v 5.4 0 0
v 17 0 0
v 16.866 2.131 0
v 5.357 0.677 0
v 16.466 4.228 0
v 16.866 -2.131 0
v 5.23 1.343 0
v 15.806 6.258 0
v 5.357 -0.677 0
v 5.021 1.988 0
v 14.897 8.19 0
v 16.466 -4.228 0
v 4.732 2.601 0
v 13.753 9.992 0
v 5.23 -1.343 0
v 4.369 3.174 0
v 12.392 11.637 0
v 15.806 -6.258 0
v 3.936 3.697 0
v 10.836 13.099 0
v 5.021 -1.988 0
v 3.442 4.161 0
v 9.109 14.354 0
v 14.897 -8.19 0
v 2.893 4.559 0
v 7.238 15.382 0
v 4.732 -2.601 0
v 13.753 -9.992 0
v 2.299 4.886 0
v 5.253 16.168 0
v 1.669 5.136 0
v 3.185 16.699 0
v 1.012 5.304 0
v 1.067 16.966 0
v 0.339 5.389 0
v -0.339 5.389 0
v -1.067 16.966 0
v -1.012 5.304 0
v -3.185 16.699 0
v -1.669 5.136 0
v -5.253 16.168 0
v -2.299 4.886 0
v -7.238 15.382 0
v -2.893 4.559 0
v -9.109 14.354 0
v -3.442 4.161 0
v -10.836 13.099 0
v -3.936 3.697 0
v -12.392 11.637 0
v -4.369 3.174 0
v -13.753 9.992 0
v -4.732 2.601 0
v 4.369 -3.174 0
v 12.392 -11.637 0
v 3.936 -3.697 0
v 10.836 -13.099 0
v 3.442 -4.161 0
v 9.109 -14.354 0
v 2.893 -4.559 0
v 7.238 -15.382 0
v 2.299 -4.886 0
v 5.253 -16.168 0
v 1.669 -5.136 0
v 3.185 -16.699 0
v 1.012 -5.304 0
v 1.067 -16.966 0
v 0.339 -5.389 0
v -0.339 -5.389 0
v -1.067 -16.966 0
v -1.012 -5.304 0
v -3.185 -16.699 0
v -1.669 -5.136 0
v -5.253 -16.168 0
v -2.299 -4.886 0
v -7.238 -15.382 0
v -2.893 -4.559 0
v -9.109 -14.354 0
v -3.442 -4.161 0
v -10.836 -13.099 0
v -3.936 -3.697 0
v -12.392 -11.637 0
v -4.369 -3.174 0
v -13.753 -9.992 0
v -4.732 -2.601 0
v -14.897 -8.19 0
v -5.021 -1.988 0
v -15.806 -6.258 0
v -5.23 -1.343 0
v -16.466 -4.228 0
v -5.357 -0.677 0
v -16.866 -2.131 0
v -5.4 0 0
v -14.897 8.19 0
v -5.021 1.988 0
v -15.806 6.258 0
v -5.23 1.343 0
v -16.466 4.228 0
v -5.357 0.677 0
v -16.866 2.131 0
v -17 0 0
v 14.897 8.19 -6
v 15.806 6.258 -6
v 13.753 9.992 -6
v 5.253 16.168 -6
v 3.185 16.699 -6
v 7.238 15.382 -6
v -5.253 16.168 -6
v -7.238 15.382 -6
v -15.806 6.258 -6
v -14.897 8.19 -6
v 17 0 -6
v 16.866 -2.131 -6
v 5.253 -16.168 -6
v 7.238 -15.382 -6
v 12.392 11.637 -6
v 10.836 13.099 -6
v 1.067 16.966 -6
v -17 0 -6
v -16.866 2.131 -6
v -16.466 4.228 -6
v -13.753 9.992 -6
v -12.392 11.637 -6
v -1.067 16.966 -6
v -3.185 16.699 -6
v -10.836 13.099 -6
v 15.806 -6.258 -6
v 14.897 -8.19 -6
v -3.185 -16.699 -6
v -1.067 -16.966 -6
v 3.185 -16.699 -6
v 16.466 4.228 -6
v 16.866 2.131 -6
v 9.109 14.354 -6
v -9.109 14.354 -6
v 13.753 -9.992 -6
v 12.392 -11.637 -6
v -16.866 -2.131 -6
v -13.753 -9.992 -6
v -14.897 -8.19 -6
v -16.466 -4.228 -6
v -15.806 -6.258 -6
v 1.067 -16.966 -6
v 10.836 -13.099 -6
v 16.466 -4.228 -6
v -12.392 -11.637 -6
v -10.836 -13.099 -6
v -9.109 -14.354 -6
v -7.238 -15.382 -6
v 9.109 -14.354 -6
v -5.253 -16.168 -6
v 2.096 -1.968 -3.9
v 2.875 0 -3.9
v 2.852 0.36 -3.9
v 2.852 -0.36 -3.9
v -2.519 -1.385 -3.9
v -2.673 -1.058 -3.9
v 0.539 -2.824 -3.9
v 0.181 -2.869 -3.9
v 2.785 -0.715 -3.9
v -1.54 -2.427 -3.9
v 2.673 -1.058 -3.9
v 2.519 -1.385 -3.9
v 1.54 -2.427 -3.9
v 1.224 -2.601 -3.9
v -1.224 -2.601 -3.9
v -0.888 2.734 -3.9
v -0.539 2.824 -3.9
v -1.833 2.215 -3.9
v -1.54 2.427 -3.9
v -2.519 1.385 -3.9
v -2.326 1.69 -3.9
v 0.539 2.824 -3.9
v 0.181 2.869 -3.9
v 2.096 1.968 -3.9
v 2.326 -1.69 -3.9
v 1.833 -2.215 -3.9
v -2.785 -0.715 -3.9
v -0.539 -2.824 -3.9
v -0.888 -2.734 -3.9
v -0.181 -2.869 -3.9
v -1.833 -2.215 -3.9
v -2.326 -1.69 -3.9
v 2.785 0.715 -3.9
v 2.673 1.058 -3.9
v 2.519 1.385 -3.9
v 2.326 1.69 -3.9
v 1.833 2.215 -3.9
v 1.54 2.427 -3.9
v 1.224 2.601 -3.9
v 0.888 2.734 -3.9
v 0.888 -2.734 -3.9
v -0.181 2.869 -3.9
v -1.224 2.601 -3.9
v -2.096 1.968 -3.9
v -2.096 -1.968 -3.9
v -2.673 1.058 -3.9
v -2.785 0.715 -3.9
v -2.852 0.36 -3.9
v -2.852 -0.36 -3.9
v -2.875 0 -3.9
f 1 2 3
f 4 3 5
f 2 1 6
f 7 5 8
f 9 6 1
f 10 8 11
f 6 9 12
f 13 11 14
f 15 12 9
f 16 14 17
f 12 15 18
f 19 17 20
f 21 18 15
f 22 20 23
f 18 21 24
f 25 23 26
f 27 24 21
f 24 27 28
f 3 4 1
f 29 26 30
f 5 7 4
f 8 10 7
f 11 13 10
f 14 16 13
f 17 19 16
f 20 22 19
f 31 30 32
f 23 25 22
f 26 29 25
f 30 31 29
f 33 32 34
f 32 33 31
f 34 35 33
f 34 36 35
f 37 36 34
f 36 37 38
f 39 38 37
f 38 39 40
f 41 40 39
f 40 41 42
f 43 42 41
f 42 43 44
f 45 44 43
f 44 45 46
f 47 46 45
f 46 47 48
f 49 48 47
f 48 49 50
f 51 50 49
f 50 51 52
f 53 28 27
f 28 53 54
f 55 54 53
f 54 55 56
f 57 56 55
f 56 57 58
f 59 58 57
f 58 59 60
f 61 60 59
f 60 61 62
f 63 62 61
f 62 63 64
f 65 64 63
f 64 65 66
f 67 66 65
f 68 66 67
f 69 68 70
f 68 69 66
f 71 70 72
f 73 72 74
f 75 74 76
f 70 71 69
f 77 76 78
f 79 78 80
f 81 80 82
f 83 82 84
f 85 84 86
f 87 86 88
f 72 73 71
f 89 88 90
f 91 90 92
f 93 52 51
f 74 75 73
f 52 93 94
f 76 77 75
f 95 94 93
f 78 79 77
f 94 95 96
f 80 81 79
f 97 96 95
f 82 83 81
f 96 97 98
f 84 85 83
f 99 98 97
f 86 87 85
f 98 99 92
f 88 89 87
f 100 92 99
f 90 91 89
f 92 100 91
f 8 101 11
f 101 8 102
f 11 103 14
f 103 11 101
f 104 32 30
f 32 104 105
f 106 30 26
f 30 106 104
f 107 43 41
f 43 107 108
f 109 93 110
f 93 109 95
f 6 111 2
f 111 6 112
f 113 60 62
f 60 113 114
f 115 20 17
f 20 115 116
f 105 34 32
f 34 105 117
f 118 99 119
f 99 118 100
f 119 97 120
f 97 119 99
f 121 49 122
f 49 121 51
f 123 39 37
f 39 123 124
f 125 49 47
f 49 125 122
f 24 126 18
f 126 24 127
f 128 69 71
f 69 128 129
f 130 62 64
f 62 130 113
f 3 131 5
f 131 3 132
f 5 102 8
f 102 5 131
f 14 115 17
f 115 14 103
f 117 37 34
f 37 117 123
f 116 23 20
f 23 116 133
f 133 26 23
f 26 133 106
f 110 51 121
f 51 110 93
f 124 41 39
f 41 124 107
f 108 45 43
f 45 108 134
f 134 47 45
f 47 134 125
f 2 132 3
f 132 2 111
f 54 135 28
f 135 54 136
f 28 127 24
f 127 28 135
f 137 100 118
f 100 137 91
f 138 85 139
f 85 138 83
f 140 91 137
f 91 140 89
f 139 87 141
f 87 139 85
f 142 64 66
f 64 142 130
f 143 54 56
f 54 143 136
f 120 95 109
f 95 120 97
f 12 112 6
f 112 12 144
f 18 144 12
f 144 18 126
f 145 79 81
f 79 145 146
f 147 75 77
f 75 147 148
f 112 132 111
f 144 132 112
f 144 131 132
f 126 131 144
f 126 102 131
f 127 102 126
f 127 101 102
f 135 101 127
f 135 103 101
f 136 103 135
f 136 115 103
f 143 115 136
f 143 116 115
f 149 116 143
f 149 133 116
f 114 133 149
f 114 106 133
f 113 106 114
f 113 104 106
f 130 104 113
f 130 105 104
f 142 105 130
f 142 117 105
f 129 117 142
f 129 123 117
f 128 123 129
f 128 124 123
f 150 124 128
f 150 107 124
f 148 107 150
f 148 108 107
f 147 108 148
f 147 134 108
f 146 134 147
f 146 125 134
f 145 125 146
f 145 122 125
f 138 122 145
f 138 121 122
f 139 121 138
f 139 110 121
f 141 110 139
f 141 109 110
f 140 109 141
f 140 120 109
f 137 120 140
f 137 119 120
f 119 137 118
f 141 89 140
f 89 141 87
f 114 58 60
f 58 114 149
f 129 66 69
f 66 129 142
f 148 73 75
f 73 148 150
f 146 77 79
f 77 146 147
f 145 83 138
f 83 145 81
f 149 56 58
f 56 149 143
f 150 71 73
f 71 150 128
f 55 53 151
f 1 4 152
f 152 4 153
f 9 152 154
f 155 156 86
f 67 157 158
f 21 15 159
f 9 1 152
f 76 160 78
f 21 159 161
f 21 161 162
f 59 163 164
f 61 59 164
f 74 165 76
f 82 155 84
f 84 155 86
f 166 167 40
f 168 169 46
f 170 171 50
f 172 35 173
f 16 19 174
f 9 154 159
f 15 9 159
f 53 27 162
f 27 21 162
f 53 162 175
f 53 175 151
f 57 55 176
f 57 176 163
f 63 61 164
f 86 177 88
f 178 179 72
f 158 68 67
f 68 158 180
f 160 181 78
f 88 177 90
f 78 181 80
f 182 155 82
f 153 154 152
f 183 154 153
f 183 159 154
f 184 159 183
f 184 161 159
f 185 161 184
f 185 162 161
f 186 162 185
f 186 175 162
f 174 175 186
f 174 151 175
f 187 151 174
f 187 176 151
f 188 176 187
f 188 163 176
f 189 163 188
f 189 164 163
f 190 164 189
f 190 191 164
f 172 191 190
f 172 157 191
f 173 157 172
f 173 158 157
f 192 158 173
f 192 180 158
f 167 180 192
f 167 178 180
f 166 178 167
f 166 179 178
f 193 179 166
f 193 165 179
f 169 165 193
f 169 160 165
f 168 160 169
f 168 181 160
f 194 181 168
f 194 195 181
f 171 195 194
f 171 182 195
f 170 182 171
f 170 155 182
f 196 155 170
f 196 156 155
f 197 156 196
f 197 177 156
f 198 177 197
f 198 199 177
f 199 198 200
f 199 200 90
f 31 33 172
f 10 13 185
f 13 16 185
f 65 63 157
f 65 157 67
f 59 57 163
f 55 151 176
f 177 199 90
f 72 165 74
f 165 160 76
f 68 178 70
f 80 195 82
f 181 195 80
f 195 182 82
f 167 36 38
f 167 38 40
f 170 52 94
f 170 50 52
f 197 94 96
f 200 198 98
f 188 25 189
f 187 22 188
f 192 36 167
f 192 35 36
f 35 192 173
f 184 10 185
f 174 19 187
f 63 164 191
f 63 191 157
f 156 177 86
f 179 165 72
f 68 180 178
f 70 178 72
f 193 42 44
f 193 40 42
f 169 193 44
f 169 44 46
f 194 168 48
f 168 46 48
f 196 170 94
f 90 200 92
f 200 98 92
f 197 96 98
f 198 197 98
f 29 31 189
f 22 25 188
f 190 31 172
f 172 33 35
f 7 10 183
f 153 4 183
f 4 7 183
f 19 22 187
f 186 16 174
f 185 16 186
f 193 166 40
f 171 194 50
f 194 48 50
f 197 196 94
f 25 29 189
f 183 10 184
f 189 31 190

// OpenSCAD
$fn = 50;


difference() {
	union() {
		translate(v = [0, 0, -3.0000000000]) {
			cylinder(h = 3, r = 7.0000000000);
		}
		translate(v = [0, 0, -6.0000000000]) {
			cylinder(h = 6, r = 17.0000000000);
		}
	}
	union() {
		translate(v = [0, 0, 0]) {
			rotate(a = [0, 0, 0]) {
				difference() {
					union() {
						#translate(v = [0, 0, -3.0000000000]) {
							cylinder(h = 3, r = 2.6000000000);
						}
						#translate(v = [0, 0, -3.9000000000]) {
							cylinder(h = 3.9000000000, r = 7.0000000000, r1 = 2.8750000000, r2 = 5.4000000000);
						}
						#translate(v = [0, 0, -3.0000000000]) {
							cylinder(h = 3, r = 2.8750000000);
						}
						#translate(v = [0, 0, -3.0000000000]) {
							cylinder(h = 3, r = 2.6000000000);
						}
					}
					union();
				}
			}
		}
	}
}
